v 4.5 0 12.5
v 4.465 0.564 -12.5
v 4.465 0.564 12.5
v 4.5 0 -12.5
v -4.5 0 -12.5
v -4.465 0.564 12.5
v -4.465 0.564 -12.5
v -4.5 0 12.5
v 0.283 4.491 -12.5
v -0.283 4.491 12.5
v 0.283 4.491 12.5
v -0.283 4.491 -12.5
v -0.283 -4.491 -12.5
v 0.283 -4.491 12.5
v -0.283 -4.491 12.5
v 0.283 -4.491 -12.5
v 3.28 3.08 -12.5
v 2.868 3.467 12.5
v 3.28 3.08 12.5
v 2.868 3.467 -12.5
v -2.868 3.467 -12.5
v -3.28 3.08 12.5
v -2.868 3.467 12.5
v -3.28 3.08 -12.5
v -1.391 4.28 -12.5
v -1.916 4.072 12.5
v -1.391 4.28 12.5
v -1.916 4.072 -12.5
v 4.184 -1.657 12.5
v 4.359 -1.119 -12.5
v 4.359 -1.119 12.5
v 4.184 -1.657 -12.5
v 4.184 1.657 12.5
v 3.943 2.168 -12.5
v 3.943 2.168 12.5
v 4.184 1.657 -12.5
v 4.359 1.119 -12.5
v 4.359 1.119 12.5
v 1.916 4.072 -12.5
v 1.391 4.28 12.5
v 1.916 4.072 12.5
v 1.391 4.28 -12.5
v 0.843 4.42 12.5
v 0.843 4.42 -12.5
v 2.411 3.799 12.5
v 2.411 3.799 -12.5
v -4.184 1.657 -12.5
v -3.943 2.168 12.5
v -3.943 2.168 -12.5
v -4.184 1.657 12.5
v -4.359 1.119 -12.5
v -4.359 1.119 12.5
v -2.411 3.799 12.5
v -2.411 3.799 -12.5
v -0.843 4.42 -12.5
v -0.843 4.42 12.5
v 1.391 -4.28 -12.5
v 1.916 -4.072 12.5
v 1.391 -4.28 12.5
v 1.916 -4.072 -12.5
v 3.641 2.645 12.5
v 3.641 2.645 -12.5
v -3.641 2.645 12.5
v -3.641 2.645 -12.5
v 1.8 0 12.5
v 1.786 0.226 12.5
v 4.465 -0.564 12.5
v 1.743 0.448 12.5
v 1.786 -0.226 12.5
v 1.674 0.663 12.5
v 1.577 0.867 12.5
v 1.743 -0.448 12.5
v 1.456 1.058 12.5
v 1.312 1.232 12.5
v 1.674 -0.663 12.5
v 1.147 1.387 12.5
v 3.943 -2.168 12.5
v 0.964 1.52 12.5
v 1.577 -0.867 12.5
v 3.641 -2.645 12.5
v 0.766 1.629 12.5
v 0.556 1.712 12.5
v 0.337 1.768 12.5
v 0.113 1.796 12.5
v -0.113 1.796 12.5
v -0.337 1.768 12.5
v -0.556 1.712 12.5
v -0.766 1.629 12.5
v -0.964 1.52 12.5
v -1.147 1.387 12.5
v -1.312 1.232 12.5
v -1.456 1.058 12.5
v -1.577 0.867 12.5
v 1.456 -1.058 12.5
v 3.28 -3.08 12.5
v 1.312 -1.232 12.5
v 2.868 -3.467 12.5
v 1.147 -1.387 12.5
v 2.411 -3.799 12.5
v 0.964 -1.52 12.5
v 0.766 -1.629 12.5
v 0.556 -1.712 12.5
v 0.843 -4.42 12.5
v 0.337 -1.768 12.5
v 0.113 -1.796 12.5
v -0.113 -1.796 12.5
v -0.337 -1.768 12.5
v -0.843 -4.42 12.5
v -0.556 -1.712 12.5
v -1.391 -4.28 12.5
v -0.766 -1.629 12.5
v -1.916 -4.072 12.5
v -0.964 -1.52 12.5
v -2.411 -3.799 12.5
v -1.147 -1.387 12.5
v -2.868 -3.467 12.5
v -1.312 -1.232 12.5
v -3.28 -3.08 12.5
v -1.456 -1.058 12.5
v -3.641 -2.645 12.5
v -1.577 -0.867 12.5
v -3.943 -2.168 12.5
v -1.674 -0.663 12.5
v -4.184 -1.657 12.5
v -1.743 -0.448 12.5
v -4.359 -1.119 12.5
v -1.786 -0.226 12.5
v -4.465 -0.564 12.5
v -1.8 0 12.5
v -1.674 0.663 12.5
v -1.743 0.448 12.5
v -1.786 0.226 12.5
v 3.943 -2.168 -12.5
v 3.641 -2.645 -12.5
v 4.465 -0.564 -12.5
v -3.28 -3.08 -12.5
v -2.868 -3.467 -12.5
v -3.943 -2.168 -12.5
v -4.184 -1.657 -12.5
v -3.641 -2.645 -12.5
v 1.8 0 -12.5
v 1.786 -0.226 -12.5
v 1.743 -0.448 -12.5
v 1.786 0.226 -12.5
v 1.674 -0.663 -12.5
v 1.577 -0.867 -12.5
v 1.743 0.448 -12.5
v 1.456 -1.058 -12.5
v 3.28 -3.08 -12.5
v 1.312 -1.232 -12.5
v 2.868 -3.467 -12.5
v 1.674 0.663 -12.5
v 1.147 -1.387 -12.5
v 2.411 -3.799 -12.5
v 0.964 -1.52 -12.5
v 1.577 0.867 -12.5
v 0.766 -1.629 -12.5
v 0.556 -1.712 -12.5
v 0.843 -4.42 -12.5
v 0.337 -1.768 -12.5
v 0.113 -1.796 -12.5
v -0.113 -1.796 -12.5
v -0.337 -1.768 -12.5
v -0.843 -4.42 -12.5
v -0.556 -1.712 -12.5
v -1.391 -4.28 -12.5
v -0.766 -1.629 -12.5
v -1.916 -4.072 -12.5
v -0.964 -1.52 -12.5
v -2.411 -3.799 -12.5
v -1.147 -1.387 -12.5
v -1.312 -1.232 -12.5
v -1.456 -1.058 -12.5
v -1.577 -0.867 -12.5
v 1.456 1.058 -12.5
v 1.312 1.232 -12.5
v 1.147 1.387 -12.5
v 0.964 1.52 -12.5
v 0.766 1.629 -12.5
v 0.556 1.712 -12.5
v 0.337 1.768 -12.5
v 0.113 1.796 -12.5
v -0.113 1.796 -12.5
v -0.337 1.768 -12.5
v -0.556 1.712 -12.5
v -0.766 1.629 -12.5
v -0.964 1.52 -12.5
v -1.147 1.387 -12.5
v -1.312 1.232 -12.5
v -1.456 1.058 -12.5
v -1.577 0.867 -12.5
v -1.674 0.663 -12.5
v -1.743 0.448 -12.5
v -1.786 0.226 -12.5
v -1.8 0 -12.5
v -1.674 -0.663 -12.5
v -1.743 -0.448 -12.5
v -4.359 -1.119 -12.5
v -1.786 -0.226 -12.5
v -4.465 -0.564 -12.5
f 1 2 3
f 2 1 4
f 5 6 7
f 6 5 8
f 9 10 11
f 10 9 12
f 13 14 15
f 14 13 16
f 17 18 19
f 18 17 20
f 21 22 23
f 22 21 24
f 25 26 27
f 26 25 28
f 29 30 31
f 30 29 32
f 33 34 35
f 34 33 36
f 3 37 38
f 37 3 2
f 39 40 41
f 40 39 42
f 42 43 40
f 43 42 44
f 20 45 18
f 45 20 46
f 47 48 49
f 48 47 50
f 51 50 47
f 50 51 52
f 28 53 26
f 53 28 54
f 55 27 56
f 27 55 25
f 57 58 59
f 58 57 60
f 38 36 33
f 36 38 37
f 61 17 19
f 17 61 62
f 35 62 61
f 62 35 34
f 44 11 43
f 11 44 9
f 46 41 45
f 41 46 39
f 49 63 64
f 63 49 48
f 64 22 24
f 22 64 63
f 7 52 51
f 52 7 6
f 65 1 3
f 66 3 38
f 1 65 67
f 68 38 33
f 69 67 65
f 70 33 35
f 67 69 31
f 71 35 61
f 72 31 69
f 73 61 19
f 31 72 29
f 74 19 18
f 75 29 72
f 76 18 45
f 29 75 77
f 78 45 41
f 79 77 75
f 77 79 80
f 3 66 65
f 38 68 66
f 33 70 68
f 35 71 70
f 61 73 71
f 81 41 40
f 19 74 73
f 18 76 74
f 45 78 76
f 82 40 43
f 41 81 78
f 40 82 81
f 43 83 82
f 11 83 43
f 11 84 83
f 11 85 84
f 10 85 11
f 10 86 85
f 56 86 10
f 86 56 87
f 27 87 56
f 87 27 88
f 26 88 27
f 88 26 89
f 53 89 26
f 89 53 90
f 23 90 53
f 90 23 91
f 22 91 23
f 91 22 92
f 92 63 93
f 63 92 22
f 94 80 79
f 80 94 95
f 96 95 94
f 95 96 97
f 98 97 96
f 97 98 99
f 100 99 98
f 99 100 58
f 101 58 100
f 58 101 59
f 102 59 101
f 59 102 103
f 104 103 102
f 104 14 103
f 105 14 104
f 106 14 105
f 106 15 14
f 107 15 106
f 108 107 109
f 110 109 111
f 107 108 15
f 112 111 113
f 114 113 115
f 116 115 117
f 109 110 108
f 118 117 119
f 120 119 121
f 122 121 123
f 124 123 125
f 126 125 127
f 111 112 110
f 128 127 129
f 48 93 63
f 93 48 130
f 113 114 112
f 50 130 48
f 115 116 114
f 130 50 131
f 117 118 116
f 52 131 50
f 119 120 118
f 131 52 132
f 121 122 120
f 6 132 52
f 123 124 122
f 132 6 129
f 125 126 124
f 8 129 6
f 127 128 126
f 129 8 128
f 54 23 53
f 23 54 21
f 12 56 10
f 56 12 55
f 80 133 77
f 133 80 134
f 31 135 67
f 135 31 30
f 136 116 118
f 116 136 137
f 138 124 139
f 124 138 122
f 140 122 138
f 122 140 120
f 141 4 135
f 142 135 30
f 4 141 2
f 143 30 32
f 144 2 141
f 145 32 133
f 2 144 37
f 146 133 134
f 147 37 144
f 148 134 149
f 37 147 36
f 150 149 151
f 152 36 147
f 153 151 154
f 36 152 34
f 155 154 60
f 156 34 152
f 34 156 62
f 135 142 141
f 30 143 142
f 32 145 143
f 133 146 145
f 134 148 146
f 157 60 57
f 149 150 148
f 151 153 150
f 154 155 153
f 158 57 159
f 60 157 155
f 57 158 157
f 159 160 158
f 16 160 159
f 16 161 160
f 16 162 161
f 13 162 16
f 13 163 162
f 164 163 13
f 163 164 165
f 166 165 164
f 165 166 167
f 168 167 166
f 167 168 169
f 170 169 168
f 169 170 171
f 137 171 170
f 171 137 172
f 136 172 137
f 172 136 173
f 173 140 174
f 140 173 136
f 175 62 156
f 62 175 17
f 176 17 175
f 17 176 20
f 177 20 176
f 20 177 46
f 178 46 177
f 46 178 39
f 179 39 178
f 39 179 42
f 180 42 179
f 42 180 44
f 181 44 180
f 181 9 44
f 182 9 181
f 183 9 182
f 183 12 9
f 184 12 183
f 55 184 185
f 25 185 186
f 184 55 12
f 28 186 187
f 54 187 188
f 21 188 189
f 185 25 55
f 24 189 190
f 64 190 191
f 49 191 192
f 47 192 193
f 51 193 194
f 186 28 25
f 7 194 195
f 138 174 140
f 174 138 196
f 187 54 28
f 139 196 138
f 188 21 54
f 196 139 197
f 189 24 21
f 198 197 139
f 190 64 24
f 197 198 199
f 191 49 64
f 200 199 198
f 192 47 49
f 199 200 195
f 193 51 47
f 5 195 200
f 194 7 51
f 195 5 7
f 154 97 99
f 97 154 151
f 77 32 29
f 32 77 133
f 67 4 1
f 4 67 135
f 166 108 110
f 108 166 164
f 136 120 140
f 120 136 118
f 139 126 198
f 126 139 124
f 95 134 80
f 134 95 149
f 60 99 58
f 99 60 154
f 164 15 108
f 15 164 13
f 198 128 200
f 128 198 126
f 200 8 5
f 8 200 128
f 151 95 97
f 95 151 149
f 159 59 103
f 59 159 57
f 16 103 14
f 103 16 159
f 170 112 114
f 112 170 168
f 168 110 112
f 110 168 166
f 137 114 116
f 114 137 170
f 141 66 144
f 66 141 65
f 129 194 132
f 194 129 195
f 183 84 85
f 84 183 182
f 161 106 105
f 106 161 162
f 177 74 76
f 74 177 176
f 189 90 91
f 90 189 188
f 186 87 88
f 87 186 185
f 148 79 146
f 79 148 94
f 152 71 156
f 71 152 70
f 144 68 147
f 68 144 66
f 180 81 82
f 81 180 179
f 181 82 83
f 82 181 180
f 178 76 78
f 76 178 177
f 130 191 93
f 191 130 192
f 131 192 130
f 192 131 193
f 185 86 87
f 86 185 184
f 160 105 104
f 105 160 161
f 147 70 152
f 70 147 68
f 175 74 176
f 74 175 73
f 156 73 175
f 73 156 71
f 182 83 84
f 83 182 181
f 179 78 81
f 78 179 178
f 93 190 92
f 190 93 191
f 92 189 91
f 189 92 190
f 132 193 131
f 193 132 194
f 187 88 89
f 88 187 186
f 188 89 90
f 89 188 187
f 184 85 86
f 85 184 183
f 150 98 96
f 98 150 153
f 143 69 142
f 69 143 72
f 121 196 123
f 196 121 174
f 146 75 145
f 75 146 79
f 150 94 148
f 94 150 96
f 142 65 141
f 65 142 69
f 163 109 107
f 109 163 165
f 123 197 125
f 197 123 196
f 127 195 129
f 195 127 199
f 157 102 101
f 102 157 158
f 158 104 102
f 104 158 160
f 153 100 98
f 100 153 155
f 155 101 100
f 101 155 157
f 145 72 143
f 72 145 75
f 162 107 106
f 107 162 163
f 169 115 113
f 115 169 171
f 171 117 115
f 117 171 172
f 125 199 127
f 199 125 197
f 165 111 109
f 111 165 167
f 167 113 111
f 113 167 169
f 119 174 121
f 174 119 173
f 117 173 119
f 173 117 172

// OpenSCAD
$fn = 50;


difference() {
	union() {
		translate(v = [0, 0, -12.5000000000]) {
			cylinder(h = 25, r = 4.5000000000);
		}
	}
	union() {
		translate(v = [0, 0, -100.0000000000]) {
			cylinder(h = 200, r = 1.8000000000);
		}
	}
}
